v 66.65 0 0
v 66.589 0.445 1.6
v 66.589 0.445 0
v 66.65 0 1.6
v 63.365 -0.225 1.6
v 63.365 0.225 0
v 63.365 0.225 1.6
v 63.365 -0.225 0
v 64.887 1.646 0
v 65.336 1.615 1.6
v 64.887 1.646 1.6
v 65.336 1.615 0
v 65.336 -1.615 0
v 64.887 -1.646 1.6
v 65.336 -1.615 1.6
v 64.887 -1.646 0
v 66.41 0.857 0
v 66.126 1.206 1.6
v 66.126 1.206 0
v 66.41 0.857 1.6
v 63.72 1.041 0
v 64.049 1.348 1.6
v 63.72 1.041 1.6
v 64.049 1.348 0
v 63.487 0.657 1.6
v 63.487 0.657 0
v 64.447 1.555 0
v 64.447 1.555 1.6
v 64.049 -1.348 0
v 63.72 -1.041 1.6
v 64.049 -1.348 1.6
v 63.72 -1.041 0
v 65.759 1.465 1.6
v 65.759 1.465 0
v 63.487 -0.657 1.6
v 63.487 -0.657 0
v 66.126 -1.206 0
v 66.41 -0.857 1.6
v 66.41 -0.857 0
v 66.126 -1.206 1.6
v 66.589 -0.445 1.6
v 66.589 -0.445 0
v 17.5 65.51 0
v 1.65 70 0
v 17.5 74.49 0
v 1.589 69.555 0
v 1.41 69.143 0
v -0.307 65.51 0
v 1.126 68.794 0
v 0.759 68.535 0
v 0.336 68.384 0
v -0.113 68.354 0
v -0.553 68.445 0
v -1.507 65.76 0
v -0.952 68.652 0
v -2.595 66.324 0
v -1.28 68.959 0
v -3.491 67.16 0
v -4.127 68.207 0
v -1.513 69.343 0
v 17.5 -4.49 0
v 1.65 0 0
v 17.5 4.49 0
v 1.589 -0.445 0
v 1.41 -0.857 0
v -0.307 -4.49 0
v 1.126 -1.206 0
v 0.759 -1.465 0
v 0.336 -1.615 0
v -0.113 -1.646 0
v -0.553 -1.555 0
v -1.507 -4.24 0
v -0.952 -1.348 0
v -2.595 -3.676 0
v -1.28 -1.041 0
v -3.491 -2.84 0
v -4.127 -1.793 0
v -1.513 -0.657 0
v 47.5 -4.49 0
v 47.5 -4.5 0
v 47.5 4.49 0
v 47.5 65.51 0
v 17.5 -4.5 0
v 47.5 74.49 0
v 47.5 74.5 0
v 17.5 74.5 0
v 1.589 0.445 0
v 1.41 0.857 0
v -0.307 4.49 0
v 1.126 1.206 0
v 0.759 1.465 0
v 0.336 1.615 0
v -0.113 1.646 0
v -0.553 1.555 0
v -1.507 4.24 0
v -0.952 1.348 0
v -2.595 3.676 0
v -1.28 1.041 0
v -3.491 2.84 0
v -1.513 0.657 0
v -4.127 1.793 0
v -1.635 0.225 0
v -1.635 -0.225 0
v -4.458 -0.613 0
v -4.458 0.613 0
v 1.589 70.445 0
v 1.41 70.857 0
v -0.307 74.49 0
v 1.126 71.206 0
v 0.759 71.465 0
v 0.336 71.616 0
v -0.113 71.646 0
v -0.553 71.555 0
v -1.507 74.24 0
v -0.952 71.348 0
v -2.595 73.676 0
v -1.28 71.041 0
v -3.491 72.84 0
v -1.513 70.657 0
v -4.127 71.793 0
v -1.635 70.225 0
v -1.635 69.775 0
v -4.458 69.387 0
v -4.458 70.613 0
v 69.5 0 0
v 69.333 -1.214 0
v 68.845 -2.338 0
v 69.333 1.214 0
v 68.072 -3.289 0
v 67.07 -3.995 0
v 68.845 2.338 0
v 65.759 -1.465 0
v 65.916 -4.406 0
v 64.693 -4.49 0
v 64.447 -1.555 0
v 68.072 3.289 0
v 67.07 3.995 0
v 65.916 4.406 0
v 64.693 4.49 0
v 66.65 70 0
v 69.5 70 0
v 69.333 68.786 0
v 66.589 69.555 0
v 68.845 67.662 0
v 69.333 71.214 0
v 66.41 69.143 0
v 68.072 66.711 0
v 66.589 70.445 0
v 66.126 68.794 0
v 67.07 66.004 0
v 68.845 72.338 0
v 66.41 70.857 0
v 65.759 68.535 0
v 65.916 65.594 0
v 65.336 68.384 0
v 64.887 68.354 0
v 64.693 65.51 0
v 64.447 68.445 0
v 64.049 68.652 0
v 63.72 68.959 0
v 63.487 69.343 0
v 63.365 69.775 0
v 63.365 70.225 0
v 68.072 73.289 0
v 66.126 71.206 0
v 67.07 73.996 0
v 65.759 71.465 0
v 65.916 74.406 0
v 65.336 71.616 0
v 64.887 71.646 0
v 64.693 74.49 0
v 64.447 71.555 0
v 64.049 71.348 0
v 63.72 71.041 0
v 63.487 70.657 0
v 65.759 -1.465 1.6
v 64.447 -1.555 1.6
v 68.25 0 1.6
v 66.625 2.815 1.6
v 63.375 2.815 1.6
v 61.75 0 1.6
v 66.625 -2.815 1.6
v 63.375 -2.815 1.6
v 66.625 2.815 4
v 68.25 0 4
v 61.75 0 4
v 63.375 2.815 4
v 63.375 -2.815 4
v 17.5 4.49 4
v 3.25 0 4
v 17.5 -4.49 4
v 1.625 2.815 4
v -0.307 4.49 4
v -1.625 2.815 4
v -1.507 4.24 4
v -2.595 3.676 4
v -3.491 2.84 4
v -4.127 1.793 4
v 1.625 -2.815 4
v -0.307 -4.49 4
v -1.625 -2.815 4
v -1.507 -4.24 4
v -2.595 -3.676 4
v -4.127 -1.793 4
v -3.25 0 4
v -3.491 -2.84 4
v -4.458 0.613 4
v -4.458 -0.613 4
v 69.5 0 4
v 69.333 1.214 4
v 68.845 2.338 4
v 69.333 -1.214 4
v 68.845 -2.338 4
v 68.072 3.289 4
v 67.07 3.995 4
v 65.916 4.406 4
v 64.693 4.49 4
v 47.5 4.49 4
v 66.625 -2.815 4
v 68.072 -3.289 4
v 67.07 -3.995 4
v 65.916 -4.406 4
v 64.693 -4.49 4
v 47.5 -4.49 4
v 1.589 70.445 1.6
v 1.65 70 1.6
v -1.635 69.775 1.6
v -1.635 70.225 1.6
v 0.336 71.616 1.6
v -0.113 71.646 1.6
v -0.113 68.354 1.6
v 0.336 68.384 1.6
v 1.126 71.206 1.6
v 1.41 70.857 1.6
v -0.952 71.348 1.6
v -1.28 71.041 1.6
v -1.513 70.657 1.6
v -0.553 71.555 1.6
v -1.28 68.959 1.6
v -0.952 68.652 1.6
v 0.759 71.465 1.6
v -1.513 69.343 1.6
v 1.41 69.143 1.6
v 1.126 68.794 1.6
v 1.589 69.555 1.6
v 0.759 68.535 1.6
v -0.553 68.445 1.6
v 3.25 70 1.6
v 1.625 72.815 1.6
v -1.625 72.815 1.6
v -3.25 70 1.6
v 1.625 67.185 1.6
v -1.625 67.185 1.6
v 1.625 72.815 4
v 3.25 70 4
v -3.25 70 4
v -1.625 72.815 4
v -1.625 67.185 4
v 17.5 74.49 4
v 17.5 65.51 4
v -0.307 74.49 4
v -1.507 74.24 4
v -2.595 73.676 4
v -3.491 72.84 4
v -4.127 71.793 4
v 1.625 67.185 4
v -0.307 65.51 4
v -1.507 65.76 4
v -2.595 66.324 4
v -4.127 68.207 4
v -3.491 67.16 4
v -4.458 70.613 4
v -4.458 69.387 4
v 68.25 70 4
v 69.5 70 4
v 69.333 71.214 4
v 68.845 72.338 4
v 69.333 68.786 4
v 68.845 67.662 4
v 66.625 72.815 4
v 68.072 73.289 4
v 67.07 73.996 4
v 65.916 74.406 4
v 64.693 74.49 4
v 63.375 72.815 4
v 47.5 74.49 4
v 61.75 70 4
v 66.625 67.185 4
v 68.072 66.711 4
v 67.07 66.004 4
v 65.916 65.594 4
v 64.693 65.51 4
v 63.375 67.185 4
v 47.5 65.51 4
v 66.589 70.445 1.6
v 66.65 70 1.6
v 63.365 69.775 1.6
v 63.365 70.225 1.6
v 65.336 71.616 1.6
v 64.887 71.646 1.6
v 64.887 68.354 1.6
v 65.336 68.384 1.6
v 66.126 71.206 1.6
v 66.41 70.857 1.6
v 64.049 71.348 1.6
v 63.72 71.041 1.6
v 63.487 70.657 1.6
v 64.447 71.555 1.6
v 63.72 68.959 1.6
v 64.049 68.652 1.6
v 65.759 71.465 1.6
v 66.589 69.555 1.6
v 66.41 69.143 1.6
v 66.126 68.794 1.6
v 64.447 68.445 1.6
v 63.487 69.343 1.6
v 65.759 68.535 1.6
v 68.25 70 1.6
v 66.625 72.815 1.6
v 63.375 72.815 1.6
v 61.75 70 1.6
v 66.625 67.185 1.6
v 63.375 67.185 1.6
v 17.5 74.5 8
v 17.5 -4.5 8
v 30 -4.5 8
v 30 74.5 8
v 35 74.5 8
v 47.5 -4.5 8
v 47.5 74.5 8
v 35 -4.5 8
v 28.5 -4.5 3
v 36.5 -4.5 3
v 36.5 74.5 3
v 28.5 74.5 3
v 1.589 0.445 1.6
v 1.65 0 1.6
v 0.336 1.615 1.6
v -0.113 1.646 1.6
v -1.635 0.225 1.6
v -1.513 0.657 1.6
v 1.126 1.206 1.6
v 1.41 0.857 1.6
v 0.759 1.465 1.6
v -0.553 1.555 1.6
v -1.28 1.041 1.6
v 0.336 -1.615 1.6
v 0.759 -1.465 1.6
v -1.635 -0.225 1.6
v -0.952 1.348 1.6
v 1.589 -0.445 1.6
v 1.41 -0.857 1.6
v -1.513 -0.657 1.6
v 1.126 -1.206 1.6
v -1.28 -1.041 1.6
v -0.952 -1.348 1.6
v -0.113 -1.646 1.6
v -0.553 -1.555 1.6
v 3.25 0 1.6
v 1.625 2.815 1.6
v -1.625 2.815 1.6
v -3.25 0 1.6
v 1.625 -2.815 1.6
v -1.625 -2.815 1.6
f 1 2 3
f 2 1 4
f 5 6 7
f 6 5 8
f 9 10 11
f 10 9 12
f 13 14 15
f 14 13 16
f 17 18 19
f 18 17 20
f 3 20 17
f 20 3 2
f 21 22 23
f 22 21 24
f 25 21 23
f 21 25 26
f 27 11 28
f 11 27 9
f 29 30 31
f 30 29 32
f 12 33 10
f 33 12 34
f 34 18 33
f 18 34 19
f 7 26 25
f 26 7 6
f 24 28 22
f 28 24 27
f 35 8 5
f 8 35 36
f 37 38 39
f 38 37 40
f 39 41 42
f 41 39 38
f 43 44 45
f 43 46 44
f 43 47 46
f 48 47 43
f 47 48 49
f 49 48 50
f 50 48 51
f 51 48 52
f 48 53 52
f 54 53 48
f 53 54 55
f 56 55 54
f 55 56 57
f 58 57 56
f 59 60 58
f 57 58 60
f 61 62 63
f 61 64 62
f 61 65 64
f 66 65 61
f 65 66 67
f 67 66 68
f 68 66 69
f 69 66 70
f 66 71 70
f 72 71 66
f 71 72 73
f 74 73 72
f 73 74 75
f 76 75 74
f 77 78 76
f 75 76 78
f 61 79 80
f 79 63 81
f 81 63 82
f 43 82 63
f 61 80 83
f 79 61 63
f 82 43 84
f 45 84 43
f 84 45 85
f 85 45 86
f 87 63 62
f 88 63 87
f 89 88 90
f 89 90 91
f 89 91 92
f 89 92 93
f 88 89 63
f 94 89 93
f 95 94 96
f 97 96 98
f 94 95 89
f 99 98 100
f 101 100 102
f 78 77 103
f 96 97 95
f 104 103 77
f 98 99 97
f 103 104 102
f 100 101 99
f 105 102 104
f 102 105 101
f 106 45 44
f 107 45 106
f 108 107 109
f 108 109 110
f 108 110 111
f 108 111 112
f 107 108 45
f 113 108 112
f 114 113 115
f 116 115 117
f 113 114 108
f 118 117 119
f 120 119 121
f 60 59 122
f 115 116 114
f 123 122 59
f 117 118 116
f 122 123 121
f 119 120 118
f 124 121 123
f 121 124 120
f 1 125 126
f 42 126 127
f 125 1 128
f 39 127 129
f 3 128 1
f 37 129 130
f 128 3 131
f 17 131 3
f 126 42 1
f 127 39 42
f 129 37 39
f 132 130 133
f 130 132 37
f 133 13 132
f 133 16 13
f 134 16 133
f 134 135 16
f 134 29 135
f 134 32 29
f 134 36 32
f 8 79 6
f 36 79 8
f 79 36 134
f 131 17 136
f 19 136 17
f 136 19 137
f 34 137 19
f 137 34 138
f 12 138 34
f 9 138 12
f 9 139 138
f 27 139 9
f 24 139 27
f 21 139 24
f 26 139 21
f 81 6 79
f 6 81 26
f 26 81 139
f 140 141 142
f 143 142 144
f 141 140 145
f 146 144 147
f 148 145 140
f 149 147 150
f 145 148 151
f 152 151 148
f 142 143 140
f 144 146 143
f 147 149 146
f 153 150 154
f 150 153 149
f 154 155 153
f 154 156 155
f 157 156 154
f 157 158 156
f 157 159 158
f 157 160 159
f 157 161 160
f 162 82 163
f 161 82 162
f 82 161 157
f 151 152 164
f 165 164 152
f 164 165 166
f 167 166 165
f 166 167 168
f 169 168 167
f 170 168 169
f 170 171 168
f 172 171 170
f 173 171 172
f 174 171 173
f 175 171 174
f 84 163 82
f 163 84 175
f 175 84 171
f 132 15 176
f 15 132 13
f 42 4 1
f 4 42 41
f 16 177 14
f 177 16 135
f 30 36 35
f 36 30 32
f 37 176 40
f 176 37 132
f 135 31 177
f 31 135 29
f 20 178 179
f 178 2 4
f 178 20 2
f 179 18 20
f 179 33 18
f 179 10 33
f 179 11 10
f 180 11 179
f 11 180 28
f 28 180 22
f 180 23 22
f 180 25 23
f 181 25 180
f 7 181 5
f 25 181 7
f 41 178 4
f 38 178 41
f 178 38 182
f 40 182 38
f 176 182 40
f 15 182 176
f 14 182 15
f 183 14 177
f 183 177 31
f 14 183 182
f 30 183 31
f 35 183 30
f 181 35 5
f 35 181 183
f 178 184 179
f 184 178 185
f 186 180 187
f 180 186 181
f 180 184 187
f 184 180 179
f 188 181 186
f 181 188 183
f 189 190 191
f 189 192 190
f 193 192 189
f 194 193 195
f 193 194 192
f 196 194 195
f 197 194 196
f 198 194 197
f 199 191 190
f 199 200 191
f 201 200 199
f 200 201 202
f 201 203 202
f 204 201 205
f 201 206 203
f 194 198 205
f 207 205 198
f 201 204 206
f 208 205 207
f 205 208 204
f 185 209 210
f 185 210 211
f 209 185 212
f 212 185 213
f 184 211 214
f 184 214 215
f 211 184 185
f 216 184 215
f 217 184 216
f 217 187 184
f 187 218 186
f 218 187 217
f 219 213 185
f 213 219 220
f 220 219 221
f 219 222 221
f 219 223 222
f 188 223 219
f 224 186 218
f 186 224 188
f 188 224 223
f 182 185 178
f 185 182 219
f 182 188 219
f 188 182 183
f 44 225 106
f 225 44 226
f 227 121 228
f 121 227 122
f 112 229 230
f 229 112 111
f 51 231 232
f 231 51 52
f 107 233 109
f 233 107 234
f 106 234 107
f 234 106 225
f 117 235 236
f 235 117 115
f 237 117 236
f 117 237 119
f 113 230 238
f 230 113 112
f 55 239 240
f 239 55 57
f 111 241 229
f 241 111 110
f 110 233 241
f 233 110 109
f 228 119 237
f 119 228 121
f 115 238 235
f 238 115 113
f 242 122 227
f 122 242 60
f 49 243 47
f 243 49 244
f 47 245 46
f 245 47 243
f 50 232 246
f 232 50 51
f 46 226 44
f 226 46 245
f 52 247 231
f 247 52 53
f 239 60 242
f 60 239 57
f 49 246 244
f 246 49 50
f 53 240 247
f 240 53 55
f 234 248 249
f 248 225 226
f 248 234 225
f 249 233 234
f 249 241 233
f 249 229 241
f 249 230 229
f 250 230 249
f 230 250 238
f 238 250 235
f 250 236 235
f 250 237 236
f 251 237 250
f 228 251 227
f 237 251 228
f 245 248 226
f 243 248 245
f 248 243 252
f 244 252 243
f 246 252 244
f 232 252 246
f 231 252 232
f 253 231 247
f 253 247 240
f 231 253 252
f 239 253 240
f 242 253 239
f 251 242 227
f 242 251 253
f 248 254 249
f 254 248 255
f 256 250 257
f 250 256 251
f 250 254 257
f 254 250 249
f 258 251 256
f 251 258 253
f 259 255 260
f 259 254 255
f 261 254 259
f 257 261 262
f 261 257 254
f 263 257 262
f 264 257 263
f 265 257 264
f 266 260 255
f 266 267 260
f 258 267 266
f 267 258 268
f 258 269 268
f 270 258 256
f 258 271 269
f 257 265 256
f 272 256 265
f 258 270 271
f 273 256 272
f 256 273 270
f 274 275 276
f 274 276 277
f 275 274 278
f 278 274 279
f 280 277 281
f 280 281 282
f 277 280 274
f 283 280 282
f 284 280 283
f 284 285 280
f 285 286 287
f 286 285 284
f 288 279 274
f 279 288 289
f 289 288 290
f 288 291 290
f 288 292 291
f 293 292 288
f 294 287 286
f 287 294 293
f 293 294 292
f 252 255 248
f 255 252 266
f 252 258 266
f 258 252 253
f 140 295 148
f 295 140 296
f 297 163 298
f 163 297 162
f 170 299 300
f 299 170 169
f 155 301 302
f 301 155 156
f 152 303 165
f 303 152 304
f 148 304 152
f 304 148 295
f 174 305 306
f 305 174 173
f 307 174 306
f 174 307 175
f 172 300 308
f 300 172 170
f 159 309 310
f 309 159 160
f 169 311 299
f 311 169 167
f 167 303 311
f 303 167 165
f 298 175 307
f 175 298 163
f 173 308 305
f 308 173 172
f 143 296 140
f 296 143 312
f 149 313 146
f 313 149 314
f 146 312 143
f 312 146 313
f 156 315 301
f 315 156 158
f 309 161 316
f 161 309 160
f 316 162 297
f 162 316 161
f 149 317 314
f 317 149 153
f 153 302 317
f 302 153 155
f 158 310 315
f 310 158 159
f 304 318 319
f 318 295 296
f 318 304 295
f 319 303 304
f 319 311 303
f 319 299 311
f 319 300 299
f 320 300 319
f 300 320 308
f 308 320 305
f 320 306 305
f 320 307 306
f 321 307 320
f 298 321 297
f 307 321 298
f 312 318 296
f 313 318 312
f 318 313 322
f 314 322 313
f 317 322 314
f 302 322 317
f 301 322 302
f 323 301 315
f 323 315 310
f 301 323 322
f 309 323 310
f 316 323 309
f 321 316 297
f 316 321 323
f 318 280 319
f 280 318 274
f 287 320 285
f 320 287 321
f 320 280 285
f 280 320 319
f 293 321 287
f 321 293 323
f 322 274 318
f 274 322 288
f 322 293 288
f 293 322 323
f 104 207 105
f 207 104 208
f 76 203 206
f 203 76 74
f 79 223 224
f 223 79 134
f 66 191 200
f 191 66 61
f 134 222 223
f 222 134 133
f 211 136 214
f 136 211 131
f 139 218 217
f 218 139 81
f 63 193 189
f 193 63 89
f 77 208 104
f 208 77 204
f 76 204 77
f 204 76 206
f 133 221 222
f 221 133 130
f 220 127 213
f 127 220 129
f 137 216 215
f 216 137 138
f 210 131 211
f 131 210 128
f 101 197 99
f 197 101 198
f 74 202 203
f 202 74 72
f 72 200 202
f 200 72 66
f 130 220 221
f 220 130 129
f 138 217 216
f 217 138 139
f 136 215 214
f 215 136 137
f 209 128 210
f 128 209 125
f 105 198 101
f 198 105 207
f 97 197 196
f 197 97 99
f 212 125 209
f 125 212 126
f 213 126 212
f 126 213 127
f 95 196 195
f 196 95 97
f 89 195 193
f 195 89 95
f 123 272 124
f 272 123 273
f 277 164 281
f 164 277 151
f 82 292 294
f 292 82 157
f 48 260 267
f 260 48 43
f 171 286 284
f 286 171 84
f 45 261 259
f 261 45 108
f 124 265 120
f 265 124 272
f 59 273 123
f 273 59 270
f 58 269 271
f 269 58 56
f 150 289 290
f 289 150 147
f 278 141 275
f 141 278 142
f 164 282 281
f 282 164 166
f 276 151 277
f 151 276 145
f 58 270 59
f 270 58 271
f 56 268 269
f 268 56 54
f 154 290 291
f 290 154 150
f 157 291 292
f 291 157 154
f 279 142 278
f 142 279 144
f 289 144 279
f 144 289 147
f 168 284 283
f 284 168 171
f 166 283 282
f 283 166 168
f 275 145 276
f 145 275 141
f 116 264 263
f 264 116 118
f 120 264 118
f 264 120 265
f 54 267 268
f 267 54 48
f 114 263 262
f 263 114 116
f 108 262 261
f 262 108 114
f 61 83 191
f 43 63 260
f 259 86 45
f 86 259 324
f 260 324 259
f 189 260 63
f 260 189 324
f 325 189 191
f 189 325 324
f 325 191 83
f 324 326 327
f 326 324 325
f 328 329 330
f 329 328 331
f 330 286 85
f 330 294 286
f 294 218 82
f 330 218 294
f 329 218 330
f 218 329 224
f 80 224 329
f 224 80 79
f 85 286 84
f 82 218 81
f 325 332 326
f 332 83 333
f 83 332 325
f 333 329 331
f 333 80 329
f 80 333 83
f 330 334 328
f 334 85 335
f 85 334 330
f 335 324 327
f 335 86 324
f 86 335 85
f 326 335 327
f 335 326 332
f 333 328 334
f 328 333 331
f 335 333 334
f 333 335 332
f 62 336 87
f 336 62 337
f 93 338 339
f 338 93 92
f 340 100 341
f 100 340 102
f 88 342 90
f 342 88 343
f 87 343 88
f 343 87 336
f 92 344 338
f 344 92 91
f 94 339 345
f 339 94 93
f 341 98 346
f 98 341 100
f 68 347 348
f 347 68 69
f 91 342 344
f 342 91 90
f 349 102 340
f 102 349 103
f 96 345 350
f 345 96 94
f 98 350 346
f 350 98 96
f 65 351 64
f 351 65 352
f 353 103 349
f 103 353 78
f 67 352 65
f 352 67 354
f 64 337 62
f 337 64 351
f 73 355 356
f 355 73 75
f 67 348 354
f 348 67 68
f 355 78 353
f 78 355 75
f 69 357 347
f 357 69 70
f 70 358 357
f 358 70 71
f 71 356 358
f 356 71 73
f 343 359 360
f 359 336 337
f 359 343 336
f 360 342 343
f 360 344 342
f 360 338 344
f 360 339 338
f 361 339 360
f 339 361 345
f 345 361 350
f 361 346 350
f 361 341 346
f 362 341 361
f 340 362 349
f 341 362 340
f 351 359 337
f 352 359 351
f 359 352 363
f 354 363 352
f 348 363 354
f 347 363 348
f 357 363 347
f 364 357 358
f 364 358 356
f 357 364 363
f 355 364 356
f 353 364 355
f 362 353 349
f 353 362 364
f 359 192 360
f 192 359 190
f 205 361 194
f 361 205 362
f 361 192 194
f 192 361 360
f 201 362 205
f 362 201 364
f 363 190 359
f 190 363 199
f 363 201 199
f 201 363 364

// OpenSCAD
// file: globals.scad
/*
Most things in this file is represented as one millimeter, so keep that in mind while changing things.
Some of the setting are not mm but at variables that you can set, such as 2*x=2x and you are setting what x is.
I will try to specify when things are variables and not exact measurements.
*/

// printer slop
slop = 0.15;

obj_leg = 30;
leg_length = 5.5;
small_number = 0.001;
metal_core_rode_global = 5;


///////////////// number of holes /////////////////////
z_hole_number = 8;
other_holes = 8;

///////////////// Pins /////////////////////

//pins that poke out
ball_size = 10;
pin_height = 20;
pin_diameter = 6;


//holes
hole_ball_size = ball_size;
hole_pin_height = pin_height;
hole_pin_diameter = pin_diameter;

///////////////// Z THINGS /////////////////////

berring_slot_width = 7.5;
berring_slot_depth = 6.5;
metal_core_rode = 5;

///////////////// X THINGS /////////////////////

//male dove tails
male_dove_max_width=8;
male_dove_min_width=5;
male_dove_depth=5;
male_dove_height=obj_leg/2;

function scaled_male_dove_max_width() = male_dove_max_width - slop;
function scaled_male_dove_min_width() = male_dove_min_width - slop;
function scaled_male_dove_depth() = male_dove_depth - slop;

//female dove tails, this is found on the y mounts
girl_max_width=11;
girl_min_width=5;
girl_depth=5;
girl_height=obj_leg;


///////////////// Y THINGS /////////////////////
/*
The Y is so normal that all of those global variables at the top should change all of the setting in it, this section is set her incase there are variables set in the future development of this project.
*/

// stepper
motor_side_length = 43.2;
motor_bolt_hole_distance = 31;
motor_center_hole = 23;
motor_shaft_dia = 5;
motor_shaft_hole_dia = 5+2*slop;

// bolts etc.
bolt_hole_dia = 3+2*slop;
bolt_head_hole_dia = 5.8;

m4_bolt_hole_dia = 4+2*slop;
m4_bolt_head_hole_dia = 6.8+2*slop;


m3_nut_side = 5.65;
m3_nut_height = 2.3;
m4_nut_side = 6.85;
m4_nut_height = 3.1;

// threaded rod
lifter_rod_diam = 9.86;
hole_threaded_rod = lifter_rod_diam+2*slop;

// for the extensions
metal_rod_size = 9;
// main file
// meant for this: http://www.thingiverse.com/thing:209100
include <globals.scad>;
include <include.scad>;

module base() {

    //translate([-8.55,-4.45,-7.8]) intersection() {
    //    translate([-670,-10.5,0]) import("Raspberry_PI_Case_-_bottom.stl", convexity=10);
    //    translate([3.5,0,0]) cube([75,79,9.5]);
    //}

    $fn=23;

    difference() {
        union() {
            hull() {
                translate([0,0,0]) cylinder(d=9, h=4);
                translate([65,0,0]) cylinder(d=9, h=4);
            }
            hull() {
                translate([0,70,0]) cylinder(d=9, h=4);
                translate([65,70,0]) cylinder(d=9, h=4);
            }
            translate([65/2-30/2,-9/2,0]) cube([30,70+9,8]);
        }
        translate([65/2,-8,8]) rotate([-90,0,0]) male_dovetail();

        cylinder(d=bolt_hole_dia, h=5);
        translate([0,0,1.6]) M3_nut(cone=false);
        translate([65,0,0]) {
            cylinder(d=bolt_hole_dia, h=5);
            translate([0,0,1.6]) M3_nut(cone=false);
        }
        translate([0,70,0]) {
            cylinder(d=bolt_hole_dia, h=5);
            translate([0,0,1.6]) M3_nut(cone=false);
        }
        translate([65,70,0]) {
            cylinder(d=bolt_hole_dia, h=5);
            translate([0,0,1.6]) M3_nut(cone=false);
        }
    }
}

base();
